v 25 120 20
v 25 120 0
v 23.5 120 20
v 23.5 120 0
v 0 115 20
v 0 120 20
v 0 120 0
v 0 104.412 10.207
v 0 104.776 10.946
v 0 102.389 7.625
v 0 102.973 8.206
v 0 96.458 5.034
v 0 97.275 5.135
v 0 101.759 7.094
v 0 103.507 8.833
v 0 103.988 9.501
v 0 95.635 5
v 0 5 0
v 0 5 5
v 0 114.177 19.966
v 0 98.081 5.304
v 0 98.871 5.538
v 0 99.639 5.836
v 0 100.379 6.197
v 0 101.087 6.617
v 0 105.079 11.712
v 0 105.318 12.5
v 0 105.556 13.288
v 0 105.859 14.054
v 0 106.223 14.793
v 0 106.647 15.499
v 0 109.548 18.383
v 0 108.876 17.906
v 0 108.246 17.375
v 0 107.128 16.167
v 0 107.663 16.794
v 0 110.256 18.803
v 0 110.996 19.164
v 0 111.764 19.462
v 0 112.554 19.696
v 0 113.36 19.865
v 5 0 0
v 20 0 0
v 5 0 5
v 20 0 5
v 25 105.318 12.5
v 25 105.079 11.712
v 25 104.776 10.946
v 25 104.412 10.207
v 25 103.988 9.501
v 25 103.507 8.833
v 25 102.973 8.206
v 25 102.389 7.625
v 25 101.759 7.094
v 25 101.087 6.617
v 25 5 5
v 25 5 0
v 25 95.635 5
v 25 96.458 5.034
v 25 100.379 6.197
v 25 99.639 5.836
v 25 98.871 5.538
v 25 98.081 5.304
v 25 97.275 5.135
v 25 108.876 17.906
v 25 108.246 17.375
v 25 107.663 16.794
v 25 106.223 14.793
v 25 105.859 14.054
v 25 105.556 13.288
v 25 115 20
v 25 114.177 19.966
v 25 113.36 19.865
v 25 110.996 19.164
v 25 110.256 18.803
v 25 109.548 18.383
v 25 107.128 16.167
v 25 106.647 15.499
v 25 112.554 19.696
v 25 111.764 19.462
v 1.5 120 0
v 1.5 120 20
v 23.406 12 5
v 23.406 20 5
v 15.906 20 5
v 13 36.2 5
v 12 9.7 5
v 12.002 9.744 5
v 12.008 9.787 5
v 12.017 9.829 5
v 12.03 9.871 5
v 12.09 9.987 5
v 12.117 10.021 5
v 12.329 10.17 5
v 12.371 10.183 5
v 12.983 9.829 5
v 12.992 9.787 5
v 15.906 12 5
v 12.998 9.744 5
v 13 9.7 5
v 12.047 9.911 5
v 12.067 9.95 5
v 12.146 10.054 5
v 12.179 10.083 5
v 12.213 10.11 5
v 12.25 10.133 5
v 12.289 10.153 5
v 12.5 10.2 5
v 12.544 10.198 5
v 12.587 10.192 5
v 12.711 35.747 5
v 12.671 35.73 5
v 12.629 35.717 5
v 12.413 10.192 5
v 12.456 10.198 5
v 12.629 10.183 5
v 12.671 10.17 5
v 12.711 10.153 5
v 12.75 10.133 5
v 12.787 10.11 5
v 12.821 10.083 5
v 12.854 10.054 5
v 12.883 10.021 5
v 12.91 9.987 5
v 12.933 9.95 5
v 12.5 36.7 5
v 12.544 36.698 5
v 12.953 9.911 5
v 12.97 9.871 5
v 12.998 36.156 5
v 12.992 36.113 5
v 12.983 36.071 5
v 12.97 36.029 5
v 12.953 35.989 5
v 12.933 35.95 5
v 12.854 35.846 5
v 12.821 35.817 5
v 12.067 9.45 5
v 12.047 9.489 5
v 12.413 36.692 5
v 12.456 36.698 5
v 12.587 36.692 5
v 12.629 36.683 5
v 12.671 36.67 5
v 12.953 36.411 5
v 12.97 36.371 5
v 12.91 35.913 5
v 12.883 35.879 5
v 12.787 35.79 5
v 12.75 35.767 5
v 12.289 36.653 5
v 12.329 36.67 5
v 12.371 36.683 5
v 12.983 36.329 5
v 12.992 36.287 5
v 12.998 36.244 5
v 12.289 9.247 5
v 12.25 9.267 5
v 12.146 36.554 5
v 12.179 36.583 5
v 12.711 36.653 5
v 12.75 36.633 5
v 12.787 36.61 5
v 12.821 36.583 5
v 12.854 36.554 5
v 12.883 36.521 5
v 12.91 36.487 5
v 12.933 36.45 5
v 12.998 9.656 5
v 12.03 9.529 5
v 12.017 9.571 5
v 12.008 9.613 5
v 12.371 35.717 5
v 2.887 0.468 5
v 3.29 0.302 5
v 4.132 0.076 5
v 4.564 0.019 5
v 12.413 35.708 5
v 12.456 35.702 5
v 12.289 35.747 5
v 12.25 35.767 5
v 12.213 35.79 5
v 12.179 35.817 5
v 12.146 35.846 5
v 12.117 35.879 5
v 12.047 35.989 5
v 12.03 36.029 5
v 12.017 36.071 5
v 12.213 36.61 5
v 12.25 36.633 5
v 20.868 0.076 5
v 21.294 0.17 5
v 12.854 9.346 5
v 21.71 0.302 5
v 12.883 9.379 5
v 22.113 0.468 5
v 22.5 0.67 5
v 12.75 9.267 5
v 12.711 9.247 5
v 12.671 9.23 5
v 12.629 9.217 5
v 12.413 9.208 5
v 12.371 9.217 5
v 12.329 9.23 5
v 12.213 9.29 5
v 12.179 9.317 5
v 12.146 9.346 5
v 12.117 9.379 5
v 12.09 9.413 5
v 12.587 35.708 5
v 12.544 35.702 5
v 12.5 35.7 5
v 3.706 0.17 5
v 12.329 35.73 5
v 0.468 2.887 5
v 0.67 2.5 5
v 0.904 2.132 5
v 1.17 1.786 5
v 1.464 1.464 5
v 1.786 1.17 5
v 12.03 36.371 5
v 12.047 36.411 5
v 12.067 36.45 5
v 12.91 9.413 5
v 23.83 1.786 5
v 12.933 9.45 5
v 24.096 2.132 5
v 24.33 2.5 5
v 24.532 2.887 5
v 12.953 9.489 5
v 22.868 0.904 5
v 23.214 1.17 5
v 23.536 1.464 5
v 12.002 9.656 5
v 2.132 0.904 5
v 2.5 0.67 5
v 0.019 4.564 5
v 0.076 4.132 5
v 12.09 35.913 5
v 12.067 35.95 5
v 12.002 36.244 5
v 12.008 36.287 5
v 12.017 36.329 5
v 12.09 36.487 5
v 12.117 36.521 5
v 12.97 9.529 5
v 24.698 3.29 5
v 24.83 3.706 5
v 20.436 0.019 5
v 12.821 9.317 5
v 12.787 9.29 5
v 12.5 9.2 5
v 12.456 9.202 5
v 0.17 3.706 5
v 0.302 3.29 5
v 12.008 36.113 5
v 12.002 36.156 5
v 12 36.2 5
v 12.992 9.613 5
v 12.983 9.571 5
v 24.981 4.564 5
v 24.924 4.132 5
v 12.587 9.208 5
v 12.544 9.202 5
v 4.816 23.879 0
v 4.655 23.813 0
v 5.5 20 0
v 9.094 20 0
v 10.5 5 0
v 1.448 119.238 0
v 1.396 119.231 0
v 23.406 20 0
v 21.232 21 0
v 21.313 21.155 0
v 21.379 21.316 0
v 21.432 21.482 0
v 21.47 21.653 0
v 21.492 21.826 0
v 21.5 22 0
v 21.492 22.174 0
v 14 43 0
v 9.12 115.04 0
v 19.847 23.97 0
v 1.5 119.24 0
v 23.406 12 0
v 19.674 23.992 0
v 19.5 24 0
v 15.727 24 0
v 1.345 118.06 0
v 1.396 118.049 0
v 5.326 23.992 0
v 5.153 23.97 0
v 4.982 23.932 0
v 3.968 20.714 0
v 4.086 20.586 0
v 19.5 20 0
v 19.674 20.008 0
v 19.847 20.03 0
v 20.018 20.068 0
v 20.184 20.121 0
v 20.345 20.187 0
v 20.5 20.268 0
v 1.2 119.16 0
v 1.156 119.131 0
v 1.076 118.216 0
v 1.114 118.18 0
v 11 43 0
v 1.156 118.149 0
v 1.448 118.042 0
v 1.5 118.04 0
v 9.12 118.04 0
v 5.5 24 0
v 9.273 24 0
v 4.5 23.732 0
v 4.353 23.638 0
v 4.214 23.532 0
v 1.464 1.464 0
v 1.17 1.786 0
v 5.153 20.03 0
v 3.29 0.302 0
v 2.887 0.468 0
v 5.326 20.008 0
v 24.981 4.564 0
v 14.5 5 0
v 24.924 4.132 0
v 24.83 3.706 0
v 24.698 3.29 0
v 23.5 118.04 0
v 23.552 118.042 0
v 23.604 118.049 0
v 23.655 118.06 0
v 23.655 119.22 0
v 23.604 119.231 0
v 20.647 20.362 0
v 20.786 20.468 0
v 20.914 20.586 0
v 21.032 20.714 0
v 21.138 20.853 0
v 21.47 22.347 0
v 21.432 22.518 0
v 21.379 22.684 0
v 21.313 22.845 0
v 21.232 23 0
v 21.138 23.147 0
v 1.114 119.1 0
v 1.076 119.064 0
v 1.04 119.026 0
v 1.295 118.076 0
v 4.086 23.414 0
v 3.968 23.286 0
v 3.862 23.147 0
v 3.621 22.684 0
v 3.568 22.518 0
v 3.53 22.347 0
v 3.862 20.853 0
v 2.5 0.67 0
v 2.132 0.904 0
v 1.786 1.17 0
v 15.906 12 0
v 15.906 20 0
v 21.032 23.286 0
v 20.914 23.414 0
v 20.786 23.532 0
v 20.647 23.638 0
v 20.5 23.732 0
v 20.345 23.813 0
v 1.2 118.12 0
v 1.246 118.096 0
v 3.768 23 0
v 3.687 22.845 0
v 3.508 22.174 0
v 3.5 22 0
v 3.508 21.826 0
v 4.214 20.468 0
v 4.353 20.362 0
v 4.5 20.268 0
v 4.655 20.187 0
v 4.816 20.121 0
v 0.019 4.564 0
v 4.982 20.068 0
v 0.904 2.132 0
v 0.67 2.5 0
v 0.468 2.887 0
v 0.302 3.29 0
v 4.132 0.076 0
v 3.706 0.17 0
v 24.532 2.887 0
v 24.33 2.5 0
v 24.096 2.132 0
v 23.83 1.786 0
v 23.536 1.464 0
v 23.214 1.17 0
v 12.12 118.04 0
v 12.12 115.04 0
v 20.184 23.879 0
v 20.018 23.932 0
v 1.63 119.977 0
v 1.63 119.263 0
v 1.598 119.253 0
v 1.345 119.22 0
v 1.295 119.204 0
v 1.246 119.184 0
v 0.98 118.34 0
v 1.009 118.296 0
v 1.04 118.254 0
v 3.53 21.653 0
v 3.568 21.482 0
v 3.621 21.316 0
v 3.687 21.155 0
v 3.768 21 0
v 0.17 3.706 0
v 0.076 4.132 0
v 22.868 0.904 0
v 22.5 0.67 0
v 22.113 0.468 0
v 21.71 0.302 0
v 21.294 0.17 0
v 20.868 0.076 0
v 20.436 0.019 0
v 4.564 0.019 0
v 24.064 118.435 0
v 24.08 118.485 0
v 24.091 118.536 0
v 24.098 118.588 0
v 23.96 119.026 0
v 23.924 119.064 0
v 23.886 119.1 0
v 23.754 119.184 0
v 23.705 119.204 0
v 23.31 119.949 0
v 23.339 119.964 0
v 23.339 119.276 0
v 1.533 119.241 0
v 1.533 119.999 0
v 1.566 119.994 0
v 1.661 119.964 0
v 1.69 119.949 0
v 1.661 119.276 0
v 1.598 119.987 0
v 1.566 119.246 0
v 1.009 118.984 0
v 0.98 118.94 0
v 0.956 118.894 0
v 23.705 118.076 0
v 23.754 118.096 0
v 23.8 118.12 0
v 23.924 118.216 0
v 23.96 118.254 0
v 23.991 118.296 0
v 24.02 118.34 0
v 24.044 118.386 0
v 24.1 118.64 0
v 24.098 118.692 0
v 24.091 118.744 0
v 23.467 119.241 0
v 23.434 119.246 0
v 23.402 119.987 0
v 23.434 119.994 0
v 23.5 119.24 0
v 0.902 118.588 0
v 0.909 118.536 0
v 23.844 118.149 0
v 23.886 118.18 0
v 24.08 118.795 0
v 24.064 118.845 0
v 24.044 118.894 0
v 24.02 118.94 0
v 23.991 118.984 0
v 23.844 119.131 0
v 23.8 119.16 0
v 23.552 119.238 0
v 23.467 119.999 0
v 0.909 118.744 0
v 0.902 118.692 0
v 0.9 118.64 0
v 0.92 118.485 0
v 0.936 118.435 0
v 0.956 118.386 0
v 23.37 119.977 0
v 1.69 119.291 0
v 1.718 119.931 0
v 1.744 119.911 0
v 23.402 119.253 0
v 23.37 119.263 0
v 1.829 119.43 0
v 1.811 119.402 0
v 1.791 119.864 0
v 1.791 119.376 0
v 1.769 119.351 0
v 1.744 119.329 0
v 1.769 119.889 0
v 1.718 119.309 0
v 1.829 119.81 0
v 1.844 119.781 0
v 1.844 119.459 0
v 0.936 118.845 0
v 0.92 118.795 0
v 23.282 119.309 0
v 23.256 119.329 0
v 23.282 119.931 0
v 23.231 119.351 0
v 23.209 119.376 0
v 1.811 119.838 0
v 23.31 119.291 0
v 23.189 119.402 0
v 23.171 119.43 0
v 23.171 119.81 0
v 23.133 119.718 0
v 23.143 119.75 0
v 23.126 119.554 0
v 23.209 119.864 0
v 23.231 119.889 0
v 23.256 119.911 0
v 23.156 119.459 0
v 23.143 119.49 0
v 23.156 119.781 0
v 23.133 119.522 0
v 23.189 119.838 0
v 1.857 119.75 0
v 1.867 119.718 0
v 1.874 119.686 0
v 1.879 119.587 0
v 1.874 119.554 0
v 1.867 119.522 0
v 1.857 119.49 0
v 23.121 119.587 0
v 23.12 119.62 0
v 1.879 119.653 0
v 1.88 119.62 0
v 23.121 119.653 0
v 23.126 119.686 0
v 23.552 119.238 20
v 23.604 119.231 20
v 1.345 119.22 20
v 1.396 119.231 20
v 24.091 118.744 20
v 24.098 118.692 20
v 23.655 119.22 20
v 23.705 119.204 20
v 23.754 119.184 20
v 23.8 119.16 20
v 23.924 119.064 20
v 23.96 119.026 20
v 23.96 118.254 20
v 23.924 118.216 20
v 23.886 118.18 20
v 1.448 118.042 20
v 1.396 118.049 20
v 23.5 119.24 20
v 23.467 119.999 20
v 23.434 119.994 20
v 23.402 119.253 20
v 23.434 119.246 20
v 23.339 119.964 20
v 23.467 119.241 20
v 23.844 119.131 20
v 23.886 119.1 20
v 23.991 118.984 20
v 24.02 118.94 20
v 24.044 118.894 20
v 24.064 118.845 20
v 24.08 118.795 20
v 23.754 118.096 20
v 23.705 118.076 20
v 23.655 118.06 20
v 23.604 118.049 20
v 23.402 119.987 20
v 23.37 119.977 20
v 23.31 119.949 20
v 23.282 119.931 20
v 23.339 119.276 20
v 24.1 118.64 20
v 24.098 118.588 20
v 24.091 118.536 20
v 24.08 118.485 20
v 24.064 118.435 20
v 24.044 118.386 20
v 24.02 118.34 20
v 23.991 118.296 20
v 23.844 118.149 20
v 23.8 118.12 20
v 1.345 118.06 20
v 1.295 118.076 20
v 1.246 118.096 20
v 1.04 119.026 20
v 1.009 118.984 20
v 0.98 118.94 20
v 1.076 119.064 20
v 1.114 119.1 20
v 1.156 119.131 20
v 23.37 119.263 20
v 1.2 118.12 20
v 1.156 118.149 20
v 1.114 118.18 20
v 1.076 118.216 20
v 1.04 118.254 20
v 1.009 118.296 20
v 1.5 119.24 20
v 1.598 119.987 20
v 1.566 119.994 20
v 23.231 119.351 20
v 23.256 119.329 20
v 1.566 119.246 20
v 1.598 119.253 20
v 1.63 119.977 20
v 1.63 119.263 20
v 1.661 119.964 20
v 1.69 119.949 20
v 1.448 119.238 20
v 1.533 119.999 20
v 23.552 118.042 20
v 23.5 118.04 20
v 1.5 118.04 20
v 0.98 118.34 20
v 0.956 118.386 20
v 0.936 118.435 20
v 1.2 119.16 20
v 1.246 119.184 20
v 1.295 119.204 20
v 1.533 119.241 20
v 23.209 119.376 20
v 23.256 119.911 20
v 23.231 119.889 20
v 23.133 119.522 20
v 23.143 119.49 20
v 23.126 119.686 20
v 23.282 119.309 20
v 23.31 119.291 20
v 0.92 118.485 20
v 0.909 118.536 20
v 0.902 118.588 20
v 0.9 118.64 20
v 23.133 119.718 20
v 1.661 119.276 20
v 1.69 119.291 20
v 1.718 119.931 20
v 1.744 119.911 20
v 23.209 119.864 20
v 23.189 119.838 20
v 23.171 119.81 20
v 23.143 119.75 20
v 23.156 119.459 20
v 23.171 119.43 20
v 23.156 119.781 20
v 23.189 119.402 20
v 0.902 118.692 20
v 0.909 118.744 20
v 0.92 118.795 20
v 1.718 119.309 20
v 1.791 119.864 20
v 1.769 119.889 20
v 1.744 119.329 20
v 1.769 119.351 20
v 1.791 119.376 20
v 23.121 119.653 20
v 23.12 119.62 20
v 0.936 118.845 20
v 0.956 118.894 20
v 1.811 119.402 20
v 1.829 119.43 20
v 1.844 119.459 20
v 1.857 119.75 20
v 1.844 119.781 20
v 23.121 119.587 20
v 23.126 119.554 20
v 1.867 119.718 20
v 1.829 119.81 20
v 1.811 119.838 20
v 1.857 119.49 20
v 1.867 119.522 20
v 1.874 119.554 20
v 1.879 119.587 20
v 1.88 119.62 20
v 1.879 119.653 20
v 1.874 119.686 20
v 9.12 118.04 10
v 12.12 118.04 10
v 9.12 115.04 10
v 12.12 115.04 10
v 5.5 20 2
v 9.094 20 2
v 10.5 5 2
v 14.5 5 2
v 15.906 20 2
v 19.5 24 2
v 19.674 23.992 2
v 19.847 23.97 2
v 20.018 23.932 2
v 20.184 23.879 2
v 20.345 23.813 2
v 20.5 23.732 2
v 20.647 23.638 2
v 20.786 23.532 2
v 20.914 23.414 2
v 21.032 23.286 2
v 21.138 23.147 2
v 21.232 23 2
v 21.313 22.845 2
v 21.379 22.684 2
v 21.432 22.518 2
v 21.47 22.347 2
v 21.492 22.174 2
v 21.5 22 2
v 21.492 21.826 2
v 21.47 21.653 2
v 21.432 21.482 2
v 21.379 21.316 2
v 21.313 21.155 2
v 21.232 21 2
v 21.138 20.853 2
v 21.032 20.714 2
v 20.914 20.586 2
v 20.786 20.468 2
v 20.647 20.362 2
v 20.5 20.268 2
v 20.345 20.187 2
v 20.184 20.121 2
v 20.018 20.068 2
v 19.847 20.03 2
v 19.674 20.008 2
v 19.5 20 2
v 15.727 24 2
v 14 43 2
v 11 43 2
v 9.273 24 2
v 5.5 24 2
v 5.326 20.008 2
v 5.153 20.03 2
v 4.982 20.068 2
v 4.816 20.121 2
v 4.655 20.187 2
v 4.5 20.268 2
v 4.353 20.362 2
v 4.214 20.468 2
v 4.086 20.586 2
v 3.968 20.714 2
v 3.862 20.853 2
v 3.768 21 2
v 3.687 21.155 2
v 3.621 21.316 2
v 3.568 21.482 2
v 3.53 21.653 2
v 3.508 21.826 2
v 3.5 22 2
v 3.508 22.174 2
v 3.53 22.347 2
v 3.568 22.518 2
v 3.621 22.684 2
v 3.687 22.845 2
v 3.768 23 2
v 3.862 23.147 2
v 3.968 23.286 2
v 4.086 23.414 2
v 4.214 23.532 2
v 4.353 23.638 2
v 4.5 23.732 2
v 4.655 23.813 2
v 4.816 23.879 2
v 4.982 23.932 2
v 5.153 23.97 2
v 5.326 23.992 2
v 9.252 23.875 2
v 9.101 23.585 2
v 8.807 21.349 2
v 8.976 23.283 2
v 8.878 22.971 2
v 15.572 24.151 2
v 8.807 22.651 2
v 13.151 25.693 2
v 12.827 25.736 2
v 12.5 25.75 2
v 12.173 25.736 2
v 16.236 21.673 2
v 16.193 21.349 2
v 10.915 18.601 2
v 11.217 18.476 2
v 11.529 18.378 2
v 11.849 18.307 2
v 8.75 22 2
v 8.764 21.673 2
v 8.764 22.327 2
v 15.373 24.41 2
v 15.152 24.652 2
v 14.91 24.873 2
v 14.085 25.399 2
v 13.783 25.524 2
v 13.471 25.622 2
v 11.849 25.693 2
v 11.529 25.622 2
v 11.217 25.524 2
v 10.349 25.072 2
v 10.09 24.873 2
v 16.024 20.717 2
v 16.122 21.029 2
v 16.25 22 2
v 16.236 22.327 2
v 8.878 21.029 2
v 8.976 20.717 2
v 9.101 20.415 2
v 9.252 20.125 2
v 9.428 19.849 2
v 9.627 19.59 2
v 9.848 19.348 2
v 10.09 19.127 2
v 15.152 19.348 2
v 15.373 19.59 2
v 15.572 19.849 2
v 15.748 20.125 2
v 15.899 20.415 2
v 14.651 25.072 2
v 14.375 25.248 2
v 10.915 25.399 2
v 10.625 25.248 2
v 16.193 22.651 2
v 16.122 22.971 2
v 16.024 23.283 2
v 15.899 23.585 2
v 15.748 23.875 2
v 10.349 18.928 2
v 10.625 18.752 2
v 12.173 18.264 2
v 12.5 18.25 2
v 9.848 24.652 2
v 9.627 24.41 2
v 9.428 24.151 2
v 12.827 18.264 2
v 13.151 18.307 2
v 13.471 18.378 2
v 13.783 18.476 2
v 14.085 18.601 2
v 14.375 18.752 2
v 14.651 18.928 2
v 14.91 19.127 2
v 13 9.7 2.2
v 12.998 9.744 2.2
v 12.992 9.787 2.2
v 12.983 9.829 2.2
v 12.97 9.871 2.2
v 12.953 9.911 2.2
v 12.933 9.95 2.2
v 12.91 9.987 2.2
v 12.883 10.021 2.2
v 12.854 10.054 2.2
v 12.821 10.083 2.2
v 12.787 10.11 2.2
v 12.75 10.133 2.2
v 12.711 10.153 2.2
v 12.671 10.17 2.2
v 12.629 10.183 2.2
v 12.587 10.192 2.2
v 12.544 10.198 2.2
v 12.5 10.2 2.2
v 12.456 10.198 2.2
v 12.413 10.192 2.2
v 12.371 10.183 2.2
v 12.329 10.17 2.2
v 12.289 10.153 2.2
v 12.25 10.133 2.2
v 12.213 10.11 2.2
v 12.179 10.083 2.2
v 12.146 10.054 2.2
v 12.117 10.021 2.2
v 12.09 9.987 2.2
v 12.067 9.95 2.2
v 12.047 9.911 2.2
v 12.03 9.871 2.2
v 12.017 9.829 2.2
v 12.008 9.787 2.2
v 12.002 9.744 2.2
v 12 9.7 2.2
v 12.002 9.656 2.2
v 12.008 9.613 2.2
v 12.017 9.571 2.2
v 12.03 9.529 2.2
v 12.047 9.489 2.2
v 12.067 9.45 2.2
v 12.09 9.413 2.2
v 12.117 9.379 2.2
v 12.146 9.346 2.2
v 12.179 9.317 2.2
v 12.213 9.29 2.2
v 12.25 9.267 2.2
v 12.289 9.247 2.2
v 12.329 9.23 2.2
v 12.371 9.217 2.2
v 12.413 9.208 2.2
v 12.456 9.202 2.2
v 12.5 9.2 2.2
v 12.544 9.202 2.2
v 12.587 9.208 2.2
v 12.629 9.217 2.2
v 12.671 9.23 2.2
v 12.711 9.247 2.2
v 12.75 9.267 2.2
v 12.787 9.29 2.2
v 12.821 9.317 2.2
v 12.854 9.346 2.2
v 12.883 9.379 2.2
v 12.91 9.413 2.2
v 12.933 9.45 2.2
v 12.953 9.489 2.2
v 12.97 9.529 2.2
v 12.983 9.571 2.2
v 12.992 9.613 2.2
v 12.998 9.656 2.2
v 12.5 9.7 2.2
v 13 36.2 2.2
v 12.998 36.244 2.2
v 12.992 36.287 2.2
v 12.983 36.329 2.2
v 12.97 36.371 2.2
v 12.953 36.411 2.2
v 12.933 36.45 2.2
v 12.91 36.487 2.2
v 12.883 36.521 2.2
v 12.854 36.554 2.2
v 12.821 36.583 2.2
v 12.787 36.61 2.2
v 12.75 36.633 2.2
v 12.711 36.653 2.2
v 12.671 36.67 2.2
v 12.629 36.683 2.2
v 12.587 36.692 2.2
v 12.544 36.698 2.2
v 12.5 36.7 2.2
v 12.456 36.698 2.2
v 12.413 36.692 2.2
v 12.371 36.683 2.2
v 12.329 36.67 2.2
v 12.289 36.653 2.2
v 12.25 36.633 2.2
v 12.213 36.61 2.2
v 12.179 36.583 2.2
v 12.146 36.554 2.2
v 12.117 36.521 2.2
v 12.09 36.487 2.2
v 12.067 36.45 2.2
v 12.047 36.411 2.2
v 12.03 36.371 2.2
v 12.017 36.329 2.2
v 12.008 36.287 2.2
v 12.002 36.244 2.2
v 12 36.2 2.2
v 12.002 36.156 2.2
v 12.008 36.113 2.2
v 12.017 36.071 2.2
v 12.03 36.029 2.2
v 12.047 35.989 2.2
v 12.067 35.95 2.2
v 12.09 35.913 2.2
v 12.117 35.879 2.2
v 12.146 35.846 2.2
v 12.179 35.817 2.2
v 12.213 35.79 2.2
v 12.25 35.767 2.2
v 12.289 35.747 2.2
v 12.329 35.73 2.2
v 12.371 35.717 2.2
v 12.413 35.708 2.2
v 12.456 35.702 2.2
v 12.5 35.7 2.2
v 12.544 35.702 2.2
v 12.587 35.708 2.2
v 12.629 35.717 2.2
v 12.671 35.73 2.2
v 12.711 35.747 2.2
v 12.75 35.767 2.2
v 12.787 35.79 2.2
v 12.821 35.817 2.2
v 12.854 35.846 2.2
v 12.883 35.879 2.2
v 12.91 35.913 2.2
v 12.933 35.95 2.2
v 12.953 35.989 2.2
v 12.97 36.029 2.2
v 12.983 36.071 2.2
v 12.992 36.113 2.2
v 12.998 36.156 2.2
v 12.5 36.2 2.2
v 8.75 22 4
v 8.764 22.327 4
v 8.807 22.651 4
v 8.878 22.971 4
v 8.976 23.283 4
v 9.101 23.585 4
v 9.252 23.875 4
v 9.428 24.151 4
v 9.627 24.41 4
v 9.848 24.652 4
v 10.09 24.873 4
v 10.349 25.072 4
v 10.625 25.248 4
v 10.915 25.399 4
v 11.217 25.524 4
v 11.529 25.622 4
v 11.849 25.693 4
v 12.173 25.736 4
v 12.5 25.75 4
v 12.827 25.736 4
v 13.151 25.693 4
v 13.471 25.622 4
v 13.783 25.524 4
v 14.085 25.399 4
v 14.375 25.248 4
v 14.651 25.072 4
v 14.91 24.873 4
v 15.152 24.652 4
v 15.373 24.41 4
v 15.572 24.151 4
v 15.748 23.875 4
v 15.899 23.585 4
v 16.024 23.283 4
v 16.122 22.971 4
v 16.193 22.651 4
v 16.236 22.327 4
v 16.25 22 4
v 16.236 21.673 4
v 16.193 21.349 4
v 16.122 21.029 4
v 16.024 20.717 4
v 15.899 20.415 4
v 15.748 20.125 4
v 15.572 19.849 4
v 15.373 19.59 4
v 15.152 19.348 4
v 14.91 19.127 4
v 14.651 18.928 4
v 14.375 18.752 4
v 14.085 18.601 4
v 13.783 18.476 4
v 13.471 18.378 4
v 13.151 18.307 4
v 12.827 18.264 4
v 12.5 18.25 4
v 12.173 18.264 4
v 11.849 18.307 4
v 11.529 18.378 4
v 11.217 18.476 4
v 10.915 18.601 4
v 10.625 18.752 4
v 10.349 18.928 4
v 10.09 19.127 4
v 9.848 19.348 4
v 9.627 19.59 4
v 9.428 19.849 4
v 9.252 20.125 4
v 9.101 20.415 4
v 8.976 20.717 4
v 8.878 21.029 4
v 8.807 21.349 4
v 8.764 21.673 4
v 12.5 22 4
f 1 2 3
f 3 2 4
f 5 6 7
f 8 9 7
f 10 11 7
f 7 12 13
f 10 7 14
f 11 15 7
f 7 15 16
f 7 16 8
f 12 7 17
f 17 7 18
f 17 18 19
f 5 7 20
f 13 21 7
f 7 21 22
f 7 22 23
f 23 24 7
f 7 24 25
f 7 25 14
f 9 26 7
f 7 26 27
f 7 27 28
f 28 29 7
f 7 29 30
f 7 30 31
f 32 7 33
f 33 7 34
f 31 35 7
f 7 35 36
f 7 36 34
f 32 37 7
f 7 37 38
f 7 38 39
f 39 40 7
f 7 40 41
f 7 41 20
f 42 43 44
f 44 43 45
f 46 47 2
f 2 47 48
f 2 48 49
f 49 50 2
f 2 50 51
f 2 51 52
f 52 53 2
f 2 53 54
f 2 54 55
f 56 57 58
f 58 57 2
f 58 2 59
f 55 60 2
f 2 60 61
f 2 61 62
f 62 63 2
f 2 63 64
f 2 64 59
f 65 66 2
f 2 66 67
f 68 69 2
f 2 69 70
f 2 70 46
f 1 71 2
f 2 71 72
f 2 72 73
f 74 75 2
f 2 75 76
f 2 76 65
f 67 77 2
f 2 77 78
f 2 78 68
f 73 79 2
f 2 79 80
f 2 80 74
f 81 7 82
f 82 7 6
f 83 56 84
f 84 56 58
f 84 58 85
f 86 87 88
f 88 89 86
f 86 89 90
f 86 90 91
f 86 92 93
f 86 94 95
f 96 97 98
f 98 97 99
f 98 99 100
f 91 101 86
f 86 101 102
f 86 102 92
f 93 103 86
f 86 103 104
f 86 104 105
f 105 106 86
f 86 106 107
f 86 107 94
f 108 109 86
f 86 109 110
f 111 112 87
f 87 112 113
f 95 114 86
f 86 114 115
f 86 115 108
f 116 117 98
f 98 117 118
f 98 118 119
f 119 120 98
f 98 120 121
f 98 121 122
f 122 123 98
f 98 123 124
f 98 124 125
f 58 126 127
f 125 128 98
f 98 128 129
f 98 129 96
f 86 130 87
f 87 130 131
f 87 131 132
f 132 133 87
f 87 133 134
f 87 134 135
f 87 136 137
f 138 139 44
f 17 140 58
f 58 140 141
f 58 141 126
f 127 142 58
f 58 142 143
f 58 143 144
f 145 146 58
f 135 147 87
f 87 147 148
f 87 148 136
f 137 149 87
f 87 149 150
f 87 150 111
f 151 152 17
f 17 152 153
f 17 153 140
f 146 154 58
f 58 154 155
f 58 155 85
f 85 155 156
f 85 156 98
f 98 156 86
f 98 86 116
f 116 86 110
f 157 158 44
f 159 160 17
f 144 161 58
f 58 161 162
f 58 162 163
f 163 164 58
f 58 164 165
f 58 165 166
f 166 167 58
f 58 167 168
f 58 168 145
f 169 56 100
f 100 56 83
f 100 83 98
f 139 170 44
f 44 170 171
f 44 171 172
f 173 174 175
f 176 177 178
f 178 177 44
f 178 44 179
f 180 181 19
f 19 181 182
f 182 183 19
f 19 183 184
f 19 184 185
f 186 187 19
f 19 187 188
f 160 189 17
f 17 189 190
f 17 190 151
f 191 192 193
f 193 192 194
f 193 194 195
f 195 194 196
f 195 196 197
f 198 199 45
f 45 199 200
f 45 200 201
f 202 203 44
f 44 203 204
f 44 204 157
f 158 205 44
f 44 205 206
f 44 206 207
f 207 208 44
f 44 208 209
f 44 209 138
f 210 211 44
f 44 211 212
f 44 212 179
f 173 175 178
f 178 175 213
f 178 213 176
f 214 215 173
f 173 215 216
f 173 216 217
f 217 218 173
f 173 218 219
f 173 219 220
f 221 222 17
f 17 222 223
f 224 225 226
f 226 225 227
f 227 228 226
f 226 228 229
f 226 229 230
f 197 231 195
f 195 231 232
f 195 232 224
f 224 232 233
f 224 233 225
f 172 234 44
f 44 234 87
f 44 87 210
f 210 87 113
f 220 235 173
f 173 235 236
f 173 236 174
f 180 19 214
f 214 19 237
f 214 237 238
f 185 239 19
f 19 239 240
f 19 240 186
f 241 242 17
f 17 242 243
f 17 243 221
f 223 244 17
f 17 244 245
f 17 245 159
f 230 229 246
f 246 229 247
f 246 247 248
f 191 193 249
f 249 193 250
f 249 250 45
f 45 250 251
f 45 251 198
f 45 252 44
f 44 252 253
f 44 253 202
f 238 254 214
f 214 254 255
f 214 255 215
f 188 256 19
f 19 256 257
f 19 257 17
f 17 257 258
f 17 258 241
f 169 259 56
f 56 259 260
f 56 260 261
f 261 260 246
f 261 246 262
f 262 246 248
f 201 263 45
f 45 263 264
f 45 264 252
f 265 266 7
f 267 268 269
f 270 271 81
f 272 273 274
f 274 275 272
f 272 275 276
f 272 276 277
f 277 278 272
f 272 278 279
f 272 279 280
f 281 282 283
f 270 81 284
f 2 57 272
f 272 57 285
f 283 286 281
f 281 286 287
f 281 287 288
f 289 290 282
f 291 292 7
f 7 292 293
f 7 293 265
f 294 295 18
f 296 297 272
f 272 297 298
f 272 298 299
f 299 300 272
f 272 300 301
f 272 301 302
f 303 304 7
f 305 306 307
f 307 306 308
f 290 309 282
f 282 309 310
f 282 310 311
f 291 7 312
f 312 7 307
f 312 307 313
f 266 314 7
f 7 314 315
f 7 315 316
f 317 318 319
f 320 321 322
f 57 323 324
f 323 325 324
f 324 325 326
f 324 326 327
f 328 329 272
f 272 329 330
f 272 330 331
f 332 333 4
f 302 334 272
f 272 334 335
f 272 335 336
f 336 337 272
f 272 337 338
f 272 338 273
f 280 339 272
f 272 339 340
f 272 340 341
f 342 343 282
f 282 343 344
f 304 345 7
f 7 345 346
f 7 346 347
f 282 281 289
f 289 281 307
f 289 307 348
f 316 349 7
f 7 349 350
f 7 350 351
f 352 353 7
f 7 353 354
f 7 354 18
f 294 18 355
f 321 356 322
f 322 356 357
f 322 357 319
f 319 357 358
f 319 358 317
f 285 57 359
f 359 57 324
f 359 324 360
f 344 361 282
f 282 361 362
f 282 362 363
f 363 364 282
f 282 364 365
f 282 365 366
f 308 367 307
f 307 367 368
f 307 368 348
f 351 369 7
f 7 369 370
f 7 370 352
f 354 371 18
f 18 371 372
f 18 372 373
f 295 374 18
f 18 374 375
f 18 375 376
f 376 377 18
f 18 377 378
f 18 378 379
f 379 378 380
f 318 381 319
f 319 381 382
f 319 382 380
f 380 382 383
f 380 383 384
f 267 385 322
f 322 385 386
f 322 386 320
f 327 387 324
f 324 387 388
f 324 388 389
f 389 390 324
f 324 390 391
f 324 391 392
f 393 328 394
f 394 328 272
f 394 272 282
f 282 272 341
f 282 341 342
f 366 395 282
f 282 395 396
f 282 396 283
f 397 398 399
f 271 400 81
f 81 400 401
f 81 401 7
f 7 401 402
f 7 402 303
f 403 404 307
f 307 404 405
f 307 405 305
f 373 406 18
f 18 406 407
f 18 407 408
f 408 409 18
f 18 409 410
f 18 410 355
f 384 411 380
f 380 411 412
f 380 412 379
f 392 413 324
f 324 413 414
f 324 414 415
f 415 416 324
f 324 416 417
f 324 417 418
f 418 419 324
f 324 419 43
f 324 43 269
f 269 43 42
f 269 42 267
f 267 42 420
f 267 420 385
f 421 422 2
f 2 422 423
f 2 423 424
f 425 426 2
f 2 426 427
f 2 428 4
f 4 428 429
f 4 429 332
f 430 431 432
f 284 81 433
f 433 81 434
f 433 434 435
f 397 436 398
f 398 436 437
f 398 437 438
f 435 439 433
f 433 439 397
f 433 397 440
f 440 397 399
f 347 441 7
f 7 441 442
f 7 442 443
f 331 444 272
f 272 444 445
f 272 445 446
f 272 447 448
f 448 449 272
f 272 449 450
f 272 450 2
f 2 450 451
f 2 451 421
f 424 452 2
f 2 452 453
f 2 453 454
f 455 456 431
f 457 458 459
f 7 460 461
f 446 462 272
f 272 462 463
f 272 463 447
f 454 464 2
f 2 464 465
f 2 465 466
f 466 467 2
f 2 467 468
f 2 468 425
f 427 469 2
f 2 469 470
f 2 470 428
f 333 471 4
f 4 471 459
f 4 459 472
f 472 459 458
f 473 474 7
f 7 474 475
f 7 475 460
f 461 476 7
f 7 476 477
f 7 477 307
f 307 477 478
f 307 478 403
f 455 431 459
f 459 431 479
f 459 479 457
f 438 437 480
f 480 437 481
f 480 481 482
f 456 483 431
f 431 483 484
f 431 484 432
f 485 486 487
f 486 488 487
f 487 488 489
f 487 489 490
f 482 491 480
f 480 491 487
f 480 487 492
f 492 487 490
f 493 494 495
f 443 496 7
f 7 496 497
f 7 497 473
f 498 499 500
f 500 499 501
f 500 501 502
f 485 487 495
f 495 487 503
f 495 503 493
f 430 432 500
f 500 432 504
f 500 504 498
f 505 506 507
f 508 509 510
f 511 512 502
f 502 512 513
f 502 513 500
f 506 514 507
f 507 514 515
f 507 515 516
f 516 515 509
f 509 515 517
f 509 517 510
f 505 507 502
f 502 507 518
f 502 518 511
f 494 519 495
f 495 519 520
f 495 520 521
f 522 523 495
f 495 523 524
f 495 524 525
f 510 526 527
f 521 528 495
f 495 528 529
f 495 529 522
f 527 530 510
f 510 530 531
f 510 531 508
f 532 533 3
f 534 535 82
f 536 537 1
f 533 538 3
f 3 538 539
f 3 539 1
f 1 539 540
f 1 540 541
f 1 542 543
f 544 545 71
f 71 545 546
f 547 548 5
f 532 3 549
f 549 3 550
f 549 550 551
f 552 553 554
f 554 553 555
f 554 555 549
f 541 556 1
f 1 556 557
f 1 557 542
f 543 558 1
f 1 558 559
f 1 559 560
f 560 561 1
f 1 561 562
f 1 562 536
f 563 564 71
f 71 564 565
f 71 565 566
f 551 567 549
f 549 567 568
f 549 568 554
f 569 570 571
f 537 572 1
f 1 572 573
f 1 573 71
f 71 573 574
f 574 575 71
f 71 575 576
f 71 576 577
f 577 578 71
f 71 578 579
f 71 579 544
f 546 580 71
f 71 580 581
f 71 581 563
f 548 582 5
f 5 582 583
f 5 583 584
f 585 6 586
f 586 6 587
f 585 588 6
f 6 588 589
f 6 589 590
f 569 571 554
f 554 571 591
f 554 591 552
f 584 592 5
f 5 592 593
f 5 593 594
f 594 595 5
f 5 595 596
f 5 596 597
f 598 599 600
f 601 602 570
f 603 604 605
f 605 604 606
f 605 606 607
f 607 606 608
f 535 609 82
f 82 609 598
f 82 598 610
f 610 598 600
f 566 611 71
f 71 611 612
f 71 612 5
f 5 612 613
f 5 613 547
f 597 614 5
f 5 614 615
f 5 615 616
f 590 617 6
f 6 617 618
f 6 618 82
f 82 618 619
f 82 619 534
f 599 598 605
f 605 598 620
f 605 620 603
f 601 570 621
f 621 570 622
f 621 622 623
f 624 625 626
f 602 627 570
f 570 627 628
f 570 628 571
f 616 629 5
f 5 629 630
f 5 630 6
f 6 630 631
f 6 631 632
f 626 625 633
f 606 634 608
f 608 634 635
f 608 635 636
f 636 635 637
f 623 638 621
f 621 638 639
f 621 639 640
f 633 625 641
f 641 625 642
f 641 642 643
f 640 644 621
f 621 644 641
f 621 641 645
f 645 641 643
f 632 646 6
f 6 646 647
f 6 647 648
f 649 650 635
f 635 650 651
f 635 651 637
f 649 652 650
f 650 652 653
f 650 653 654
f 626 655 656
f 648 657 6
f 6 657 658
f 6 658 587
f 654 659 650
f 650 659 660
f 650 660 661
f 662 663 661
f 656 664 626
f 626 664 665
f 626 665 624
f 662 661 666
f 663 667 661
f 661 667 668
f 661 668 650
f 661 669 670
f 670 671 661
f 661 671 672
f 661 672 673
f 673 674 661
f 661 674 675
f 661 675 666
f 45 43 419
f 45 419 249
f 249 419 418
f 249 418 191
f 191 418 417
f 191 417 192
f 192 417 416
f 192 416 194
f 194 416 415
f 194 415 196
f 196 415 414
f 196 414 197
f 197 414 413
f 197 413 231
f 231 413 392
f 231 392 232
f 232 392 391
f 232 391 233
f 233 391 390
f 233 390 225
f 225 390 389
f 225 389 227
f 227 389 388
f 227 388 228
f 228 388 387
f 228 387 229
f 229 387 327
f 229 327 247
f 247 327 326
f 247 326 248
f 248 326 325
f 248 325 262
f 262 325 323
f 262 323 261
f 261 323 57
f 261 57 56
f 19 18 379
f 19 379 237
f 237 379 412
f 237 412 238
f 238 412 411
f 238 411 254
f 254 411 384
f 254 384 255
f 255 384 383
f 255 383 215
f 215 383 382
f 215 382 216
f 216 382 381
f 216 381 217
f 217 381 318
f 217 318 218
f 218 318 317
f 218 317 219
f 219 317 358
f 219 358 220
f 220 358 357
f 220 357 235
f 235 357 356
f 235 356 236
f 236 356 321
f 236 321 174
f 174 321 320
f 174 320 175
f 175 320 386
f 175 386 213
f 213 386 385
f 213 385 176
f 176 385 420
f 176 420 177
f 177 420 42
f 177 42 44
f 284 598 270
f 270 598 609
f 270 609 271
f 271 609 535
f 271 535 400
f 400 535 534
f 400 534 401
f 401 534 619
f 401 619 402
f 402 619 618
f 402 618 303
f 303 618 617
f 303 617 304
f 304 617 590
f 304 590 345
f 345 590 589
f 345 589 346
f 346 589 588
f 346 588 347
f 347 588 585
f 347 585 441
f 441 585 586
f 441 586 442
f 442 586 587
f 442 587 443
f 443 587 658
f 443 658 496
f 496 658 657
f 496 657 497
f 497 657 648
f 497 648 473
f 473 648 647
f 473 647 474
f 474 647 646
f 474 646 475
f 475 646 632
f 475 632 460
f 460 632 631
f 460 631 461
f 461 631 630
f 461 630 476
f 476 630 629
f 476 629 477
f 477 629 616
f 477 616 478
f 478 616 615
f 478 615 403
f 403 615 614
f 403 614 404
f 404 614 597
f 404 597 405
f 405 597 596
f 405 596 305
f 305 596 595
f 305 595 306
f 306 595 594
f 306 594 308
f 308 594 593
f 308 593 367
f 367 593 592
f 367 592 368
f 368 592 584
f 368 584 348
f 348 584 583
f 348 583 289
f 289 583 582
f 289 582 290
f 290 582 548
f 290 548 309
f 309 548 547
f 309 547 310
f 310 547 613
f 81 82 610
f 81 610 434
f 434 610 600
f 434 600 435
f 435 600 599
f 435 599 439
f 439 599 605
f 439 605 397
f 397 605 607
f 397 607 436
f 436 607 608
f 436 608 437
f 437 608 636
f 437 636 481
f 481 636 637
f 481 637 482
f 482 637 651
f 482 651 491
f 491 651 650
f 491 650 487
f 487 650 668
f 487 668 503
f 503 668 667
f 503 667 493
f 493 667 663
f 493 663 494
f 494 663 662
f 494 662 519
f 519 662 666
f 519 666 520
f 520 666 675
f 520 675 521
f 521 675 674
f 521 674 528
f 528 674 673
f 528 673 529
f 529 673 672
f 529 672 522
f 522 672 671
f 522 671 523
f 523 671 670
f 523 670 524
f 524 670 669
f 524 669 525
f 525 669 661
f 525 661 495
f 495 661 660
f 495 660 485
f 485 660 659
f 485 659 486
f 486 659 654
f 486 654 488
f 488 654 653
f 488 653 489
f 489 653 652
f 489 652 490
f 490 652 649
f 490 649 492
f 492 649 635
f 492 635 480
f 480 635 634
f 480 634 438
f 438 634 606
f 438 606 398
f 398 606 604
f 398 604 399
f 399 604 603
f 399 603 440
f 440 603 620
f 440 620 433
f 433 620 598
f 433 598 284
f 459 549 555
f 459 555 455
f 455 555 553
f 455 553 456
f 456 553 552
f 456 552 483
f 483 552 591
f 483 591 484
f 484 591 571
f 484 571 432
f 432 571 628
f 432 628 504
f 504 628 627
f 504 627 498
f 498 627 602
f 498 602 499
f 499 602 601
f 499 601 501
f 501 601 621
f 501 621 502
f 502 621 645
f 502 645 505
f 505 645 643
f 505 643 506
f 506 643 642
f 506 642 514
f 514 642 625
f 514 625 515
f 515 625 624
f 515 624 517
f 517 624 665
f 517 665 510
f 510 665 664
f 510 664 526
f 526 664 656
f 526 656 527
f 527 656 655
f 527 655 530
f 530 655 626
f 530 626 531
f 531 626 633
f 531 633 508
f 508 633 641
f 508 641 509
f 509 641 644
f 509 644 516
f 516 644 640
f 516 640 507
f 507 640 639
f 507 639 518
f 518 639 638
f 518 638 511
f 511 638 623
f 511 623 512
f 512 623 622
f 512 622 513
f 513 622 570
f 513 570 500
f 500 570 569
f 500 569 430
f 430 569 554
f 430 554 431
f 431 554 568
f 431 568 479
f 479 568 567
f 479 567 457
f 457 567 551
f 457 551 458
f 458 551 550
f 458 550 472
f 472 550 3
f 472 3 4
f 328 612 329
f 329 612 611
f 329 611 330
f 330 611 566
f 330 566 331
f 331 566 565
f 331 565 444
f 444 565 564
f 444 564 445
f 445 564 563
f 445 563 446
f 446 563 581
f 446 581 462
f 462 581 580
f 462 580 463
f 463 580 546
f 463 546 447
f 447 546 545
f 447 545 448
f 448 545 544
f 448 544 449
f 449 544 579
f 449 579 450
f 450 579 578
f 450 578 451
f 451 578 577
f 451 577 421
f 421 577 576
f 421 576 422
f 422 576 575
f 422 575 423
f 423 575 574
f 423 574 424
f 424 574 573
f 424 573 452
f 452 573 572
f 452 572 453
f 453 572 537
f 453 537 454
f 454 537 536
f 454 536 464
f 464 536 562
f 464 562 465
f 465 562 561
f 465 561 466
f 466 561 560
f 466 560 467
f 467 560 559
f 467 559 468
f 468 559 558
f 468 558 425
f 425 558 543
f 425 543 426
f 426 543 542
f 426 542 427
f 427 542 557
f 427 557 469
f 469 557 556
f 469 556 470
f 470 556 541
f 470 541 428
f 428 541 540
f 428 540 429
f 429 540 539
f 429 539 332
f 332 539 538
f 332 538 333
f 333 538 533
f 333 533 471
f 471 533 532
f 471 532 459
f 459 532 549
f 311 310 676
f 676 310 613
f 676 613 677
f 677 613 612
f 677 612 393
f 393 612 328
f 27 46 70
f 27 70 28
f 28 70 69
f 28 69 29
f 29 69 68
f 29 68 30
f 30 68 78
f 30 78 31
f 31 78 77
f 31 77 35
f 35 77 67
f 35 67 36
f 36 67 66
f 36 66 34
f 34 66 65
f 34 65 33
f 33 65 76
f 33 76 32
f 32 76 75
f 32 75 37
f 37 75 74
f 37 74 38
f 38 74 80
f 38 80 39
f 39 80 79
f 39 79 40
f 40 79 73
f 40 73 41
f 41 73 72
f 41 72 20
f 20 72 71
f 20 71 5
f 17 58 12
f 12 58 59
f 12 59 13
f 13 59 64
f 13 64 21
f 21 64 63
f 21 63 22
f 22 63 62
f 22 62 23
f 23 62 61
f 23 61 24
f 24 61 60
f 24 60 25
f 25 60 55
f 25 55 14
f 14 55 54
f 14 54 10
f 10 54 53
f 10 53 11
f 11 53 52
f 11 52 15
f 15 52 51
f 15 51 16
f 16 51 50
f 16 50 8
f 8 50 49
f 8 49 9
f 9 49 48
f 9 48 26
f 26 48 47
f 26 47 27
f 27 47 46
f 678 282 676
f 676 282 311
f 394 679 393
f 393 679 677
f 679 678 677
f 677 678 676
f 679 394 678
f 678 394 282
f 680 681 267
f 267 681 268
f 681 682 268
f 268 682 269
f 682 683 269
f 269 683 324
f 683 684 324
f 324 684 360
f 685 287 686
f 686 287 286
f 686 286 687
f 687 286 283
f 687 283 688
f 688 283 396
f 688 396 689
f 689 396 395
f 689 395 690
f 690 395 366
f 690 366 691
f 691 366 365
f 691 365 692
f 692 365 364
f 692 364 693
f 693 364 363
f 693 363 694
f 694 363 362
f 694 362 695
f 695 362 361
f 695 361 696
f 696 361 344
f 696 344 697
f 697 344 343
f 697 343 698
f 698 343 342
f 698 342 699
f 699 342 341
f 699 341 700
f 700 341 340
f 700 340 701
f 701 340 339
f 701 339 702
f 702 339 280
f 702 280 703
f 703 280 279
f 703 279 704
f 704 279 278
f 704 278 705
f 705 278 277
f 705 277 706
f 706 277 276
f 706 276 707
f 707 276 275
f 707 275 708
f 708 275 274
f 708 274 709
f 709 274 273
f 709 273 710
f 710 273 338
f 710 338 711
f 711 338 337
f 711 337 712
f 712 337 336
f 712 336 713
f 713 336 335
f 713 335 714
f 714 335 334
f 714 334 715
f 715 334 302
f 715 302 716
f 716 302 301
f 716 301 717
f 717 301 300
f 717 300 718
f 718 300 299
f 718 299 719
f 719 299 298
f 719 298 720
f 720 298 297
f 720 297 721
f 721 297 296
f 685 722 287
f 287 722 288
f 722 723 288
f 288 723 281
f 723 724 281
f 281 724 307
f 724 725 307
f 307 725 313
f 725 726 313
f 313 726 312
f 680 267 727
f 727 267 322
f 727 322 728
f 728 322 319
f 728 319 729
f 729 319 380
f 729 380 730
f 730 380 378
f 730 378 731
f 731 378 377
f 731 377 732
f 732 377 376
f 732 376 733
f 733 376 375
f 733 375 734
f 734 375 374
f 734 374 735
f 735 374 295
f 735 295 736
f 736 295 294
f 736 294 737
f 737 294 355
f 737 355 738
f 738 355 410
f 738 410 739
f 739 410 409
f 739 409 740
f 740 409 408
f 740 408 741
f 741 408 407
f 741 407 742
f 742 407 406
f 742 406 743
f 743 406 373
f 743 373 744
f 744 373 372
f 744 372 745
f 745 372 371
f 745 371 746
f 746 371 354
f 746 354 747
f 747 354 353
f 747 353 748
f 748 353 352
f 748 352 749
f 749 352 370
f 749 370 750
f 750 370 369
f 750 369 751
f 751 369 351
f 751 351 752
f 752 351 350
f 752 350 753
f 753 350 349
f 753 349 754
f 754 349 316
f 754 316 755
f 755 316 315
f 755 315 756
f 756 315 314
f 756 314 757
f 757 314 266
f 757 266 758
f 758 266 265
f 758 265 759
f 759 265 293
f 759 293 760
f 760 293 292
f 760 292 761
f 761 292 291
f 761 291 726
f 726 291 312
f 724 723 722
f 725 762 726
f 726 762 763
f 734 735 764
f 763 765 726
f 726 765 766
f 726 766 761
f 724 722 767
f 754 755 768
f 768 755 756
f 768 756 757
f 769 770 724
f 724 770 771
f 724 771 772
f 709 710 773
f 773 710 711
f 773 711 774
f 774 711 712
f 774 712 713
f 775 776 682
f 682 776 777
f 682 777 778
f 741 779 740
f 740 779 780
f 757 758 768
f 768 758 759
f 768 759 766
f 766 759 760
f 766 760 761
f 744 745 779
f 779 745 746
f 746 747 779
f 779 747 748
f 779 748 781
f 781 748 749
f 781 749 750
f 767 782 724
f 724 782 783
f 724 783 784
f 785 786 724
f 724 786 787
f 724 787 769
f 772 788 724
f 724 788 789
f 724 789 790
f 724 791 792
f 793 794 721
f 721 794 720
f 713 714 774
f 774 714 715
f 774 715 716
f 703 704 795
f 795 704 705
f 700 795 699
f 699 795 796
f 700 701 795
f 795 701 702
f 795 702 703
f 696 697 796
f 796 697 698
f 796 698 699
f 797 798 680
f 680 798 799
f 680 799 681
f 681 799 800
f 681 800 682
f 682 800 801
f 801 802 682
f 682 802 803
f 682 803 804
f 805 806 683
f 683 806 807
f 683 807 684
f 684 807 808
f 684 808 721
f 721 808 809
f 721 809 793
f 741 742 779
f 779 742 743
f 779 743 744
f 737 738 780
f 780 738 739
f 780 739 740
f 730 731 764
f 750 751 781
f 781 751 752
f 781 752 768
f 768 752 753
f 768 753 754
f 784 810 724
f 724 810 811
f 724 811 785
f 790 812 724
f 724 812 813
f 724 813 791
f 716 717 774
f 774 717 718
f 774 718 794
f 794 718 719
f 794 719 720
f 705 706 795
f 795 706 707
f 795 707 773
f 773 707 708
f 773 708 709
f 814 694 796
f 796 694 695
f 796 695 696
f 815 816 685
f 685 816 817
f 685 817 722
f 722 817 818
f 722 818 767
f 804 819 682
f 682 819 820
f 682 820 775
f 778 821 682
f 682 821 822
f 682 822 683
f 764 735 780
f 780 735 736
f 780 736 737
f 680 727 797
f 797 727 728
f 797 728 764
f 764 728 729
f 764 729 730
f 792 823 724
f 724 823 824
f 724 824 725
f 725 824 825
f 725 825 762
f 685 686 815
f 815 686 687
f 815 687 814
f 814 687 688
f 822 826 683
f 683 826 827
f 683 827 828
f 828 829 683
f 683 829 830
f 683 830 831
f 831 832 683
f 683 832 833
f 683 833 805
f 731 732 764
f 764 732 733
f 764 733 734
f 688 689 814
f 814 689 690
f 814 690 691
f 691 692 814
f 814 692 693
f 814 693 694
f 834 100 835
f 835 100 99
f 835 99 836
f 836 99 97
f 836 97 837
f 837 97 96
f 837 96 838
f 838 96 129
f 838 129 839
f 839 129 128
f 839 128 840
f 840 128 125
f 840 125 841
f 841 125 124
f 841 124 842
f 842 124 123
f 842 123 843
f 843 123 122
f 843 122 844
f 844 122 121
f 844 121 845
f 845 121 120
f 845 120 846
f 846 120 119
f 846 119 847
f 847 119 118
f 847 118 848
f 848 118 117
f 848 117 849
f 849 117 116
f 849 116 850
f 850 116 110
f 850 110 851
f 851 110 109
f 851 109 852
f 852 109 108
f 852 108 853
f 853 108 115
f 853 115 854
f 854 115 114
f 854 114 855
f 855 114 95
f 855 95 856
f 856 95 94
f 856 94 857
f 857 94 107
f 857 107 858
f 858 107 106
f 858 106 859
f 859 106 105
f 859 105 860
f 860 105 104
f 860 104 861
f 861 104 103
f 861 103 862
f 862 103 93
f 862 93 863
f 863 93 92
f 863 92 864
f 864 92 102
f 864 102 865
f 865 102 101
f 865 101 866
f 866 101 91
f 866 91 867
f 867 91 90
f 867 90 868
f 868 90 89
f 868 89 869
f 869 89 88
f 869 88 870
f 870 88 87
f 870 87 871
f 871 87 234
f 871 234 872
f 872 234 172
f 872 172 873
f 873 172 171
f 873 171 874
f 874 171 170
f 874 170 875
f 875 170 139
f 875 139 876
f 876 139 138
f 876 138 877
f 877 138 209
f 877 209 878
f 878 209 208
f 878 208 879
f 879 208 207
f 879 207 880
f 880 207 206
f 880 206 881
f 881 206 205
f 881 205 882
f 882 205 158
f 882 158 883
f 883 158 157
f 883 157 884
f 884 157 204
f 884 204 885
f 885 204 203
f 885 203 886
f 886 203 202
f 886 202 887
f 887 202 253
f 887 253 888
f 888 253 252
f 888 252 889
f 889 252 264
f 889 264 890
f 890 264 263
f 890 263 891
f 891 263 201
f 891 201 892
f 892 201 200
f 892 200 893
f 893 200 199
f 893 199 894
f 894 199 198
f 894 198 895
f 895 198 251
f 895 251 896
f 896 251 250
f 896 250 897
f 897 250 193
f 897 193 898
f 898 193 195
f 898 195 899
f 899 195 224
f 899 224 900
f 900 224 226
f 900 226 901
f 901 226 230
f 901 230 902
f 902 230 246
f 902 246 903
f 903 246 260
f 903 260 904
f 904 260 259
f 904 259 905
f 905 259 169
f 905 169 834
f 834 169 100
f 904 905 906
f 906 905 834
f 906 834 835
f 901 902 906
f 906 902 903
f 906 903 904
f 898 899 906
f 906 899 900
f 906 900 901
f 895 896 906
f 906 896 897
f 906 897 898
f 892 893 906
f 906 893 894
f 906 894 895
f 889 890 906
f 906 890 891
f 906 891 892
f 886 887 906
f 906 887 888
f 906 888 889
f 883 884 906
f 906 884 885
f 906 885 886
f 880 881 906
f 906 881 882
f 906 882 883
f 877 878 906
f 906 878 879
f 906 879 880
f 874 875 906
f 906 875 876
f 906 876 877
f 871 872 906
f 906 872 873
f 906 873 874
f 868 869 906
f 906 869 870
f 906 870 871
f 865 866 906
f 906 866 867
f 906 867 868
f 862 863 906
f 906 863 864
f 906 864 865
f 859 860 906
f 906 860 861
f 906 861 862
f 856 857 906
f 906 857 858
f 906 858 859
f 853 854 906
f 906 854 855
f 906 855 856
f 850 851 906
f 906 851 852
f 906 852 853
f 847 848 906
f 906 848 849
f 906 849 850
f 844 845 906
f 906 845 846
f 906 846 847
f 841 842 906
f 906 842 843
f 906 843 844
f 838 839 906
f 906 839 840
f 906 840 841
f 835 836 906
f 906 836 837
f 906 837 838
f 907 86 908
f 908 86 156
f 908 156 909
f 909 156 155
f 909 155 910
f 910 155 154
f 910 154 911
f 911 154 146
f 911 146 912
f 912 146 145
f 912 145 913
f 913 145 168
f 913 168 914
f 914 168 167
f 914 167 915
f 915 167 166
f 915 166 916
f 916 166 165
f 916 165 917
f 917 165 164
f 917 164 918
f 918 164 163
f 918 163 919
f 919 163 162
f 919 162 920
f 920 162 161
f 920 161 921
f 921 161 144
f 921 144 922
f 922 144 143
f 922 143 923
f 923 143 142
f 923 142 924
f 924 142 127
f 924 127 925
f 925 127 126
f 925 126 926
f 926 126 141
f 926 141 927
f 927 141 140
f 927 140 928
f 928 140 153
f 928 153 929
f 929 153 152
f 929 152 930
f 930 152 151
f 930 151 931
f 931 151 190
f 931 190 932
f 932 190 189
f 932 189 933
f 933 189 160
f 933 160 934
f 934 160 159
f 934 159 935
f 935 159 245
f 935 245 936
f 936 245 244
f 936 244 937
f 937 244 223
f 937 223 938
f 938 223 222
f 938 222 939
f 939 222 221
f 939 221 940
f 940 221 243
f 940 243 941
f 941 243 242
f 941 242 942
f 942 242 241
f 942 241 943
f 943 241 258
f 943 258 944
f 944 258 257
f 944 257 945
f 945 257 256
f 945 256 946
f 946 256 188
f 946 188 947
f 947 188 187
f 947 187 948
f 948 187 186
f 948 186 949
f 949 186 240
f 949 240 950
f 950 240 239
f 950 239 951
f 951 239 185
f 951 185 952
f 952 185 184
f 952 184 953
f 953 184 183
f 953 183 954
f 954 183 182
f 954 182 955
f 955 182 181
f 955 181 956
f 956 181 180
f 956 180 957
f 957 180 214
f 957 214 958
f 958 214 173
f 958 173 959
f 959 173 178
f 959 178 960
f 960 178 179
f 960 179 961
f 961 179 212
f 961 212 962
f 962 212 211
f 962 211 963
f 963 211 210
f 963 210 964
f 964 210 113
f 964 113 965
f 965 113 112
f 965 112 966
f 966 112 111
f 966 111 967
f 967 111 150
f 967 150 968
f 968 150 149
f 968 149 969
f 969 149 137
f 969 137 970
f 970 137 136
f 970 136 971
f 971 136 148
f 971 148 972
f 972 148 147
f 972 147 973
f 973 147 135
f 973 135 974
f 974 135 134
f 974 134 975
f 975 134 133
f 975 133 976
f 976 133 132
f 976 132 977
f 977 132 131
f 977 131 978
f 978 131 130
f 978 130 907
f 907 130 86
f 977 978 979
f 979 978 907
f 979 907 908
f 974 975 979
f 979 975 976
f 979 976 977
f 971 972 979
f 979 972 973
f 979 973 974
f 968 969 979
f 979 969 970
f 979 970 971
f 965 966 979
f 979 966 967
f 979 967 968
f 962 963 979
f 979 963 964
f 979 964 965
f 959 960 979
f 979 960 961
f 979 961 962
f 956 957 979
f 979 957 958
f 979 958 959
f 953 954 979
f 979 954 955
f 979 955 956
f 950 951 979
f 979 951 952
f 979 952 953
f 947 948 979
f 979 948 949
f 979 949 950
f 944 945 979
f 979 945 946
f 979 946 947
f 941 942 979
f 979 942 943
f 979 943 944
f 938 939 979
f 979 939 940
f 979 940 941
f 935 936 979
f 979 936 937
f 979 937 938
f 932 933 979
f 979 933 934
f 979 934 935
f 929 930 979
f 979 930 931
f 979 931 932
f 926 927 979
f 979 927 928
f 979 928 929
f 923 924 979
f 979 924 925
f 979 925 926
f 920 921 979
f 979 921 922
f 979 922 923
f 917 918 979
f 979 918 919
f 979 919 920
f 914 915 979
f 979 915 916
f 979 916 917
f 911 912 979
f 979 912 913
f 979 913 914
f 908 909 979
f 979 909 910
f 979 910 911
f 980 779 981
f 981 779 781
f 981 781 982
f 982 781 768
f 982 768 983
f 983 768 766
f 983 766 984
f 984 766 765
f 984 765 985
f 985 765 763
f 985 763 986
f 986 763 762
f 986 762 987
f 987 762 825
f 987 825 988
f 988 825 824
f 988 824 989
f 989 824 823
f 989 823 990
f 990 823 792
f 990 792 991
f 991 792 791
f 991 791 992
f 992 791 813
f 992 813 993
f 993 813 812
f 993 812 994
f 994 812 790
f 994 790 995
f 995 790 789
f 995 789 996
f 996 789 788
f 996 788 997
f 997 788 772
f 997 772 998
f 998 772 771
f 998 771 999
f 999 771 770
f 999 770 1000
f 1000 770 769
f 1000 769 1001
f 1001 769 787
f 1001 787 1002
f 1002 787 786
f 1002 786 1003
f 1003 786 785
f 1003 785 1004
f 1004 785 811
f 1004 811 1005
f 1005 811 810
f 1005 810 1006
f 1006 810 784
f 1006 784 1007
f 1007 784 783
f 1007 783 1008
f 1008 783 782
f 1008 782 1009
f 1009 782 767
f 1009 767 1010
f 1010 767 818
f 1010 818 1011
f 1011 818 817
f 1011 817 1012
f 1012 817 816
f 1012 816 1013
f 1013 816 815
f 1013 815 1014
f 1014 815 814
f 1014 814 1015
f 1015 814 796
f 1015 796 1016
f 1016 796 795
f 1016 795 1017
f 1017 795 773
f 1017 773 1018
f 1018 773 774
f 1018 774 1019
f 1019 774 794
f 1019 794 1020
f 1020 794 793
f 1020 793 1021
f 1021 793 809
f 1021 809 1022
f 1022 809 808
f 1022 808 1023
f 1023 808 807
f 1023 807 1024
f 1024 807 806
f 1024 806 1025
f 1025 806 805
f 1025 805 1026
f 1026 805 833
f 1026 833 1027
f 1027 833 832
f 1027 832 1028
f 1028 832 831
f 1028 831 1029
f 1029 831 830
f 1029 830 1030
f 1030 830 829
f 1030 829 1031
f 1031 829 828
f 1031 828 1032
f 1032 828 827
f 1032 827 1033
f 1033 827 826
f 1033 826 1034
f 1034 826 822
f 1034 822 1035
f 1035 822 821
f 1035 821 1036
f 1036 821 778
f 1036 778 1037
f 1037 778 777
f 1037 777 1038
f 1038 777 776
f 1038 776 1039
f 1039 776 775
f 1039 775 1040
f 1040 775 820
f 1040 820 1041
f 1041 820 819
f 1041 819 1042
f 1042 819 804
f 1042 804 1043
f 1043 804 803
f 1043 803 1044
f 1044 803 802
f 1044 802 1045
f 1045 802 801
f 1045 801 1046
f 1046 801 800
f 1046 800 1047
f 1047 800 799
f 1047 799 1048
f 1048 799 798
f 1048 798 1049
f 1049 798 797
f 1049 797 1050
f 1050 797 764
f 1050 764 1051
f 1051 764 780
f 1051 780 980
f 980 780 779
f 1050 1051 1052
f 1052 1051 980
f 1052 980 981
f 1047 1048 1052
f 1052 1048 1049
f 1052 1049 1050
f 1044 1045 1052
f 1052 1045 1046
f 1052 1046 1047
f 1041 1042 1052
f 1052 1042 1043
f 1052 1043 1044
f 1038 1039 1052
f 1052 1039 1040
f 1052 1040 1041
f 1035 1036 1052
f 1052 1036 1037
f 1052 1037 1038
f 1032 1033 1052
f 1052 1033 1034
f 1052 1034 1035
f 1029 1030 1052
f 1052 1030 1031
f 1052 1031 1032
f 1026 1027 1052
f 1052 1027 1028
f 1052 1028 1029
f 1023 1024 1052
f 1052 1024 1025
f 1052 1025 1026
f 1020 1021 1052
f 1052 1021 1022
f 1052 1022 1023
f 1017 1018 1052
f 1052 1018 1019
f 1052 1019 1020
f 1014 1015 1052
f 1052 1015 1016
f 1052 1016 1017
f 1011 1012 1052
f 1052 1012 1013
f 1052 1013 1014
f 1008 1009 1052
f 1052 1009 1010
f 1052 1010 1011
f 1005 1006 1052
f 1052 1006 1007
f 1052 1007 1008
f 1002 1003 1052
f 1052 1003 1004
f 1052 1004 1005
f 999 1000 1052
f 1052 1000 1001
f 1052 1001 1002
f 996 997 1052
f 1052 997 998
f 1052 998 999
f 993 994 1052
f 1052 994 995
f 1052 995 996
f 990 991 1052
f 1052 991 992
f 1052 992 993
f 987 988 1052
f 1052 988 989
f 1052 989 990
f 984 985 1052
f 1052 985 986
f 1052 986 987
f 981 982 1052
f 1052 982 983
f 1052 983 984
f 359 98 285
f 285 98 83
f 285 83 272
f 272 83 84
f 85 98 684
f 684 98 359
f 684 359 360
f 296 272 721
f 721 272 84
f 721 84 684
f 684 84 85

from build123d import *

# Parameters (mm, degrees)
SKICA1_W                 = 25
SKICA1_H                 = 120
P_IDAT_VYSUNUT_M1_DEPTH  = 5
SKICA2_W                 = 25
SKICA2_H                 = 15
P_IDAT_VYSUNUT_M2_DEPTH  = 20
ZAOBLIT5_R               = 5
ZAOBLIT6_R               = 5
ODEBRAT_VYSUNUT_M2_DEPTH = 20
ZAOBLIT7_R               = 10
ZAOBLIT8_R               = 10
SKICA4_W                 = 3
SKICA4_H                 = 10
ODEBRAT_VYSUNUT_M3_DEPTH = 3
ODEBRAT_VYSUNUT_M4_DEPTH = 2
ODEBRAT_START            = -3
SKICA7_R                 = 0.5
ODEBRAT_VYSUNUT_M5_DEPTH = 2.8
SKICA8_R                 = 3.75
ODEBRAT_VYSUNUT_M6_DEPTH = 2
SKICA9_W                 = 7.5
SKICA9_H                 = 8
ODEBRAT_VYSUNUT_M7_DEPTH = 125.197423617


with BuildPart() as part:
    # Skica1 → Přidat vysunutím1 (new body)
    with BuildSketch(Plane.XY):
        with Locations((12.5, 60)):
            Rectangle(SKICA1_W, SKICA1_H)
    extrude(amount=P_IDAT_VYSUNUT_M1_DEPTH)

    # Skica2 → Přidat vysunutím2 (add)
    with BuildSketch(Plane(origin=(0, 0, 0), x_dir=(-1, 0, 0), z_dir=(0, 0, -1))):
        with Locations((-12.5, 112.5)):
            Rectangle(SKICA2_W, SKICA2_H)
    extrude(amount=-P_IDAT_VYSUNUT_M2_DEPTH)

    # Zaoblit5
    zaoblit5_edges = [part.edges().sort_by_distance(p)[0] for p in [
        (25, 0, 2.5),
    ]]
    fillet(zaoblit5_edges, radius=ZAOBLIT5_R)

    # Zaoblit6
    zaoblit6_edges = [part.edges().sort_by_distance(p)[0] for p in [
        (0, 0, 2.5),
    ]]
    fillet(zaoblit6_edges, radius=ZAOBLIT6_R)

    # Skica3 → Odebrat vysunutím2 (cut)
    with BuildSketch(Plane.XY.offset(20)):
        with BuildLine():
            Line((1.5, 118.04), (23.5, 118.04))
            ThreePointArc((23.5, 118.04), (24.1, 118.64), (23.5, 119.24))
            ThreePointArc((23.5, 119.24), (23.12, 119.62), (23.5, 120))
            Line((23.5, 120), (1.5, 120))
            ThreePointArc((1.5, 120), (1.88, 119.62), (1.5, 119.24))
            ThreePointArc((1.5, 119.24), (0.9, 118.64), (1.5, 118.04))
        make_face()
    extrude(amount=-ODEBRAT_VYSUNUT_M2_DEPTH, mode=Mode.SUBTRACT)

    # Zaoblit7
    zaoblit7_edges = [part.edges().sort_by_distance(p)[0] for p in [
        (12.5, 105, 20),
    ]]
    fillet(zaoblit7_edges, radius=ZAOBLIT7_R)

    # Zaoblit8
    zaoblit8_edges = [part.edges().sort_by_distance(p)[0] for p in [
        (12.5, 105, 5),
    ]]
    fillet(zaoblit8_edges, radius=ZAOBLIT8_R)

    # Skica4 → Odebrat vysunutím3 (cut)
    with BuildSketch(Plane(origin=(0, 118.04, 0), x_dir=(1, 0, 0), z_dir=(0, 1, 0))):
        with Locations((10.62, -5)):
            Rectangle(SKICA4_W, SKICA4_H)
    extrude(amount=-ODEBRAT_VYSUNUT_M3_DEPTH, mode=Mode.SUBTRACT)

    # Skica5 → Odebrat vysunutím4 (cut)
    with BuildSketch(Plane.XY):
        Polygon((11, 43), (9.272727273, 24), (15.727272727, 24), (14, 43), align=None)
        with BuildLine():
            Line((5.5, 24), (5.5, 20))
            ThreePointArc((5.5, 20), (3.5, 22), (5.5, 24))
        make_face()
        Polygon((9.09375, 20), (9, 21), (9.272727273, 24), (5.5, 24), (5.5, 20), align=None)
        Polygon((9.272727273, 24), (9, 21), (16, 21), (15.727272727, 24), align=None)
        Polygon((16, 21), (9, 21), (9.09375, 20), (15.90625, 20), align=None)
        Polygon((15.727272727, 24), (16, 21), (15.90625, 20), (19.5, 20), (19.5, 24), align=None)
        with BuildLine():
            ThreePointArc((19.5, 24), (21.5, 22), (19.5, 20))
            Line((19.5, 20), (19.5, 24))
        make_face()
        Polygon((15.90625, 20), (9.09375, 20), (10.5, 5), (14.5, 5), align=None)
    extrude(amount=ODEBRAT_VYSUNUT_M4_DEPTH, mode=Mode.SUBTRACT)

    # Skica7 → Odebrat vysunutím5 (cut)
    with BuildSketch(Plane(origin=(0, 0, 2), x_dir=(-1, 0, 0), z_dir=(0, 0, -1)).offset(ODEBRAT_START)):
        with Locations(Location((-12.5, 36.2, 0), (0, 0, 180))):
            Circle(SKICA7_R)
        with Locations(Location((-12.5, 9.7, 0), (0, 0, 180))):
            Circle(SKICA7_R)
    extrude(amount=ODEBRAT_VYSUNUT_M5_DEPTH, mode=Mode.SUBTRACT)

    # Skica8 → Odebrat vysunutím6 (cut)
    with BuildSketch(Plane(origin=(0, 0, 2), x_dir=(-1, 0, 0), z_dir=(0, 0, -1))):
        with Locations((-12.5, 22)):
            Circle(SKICA8_R)
    extrude(amount=-ODEBRAT_VYSUNUT_M6_DEPTH, mode=Mode.SUBTRACT)

    # Skica9 → Odebrat vysunutím7 (cut, through all)
    with BuildSketch(Plane(origin=(0, 0, 0), x_dir=(-1, 0, 0), z_dir=(0, 0, -1))):
        with Locations((-19.65625, 16)):
            Rectangle(SKICA9_W, SKICA9_H)
    extrude(amount=-ODEBRAT_VYSUNUT_M7_DEPTH, mode=Mode.SUBTRACT)


solid = part.part
